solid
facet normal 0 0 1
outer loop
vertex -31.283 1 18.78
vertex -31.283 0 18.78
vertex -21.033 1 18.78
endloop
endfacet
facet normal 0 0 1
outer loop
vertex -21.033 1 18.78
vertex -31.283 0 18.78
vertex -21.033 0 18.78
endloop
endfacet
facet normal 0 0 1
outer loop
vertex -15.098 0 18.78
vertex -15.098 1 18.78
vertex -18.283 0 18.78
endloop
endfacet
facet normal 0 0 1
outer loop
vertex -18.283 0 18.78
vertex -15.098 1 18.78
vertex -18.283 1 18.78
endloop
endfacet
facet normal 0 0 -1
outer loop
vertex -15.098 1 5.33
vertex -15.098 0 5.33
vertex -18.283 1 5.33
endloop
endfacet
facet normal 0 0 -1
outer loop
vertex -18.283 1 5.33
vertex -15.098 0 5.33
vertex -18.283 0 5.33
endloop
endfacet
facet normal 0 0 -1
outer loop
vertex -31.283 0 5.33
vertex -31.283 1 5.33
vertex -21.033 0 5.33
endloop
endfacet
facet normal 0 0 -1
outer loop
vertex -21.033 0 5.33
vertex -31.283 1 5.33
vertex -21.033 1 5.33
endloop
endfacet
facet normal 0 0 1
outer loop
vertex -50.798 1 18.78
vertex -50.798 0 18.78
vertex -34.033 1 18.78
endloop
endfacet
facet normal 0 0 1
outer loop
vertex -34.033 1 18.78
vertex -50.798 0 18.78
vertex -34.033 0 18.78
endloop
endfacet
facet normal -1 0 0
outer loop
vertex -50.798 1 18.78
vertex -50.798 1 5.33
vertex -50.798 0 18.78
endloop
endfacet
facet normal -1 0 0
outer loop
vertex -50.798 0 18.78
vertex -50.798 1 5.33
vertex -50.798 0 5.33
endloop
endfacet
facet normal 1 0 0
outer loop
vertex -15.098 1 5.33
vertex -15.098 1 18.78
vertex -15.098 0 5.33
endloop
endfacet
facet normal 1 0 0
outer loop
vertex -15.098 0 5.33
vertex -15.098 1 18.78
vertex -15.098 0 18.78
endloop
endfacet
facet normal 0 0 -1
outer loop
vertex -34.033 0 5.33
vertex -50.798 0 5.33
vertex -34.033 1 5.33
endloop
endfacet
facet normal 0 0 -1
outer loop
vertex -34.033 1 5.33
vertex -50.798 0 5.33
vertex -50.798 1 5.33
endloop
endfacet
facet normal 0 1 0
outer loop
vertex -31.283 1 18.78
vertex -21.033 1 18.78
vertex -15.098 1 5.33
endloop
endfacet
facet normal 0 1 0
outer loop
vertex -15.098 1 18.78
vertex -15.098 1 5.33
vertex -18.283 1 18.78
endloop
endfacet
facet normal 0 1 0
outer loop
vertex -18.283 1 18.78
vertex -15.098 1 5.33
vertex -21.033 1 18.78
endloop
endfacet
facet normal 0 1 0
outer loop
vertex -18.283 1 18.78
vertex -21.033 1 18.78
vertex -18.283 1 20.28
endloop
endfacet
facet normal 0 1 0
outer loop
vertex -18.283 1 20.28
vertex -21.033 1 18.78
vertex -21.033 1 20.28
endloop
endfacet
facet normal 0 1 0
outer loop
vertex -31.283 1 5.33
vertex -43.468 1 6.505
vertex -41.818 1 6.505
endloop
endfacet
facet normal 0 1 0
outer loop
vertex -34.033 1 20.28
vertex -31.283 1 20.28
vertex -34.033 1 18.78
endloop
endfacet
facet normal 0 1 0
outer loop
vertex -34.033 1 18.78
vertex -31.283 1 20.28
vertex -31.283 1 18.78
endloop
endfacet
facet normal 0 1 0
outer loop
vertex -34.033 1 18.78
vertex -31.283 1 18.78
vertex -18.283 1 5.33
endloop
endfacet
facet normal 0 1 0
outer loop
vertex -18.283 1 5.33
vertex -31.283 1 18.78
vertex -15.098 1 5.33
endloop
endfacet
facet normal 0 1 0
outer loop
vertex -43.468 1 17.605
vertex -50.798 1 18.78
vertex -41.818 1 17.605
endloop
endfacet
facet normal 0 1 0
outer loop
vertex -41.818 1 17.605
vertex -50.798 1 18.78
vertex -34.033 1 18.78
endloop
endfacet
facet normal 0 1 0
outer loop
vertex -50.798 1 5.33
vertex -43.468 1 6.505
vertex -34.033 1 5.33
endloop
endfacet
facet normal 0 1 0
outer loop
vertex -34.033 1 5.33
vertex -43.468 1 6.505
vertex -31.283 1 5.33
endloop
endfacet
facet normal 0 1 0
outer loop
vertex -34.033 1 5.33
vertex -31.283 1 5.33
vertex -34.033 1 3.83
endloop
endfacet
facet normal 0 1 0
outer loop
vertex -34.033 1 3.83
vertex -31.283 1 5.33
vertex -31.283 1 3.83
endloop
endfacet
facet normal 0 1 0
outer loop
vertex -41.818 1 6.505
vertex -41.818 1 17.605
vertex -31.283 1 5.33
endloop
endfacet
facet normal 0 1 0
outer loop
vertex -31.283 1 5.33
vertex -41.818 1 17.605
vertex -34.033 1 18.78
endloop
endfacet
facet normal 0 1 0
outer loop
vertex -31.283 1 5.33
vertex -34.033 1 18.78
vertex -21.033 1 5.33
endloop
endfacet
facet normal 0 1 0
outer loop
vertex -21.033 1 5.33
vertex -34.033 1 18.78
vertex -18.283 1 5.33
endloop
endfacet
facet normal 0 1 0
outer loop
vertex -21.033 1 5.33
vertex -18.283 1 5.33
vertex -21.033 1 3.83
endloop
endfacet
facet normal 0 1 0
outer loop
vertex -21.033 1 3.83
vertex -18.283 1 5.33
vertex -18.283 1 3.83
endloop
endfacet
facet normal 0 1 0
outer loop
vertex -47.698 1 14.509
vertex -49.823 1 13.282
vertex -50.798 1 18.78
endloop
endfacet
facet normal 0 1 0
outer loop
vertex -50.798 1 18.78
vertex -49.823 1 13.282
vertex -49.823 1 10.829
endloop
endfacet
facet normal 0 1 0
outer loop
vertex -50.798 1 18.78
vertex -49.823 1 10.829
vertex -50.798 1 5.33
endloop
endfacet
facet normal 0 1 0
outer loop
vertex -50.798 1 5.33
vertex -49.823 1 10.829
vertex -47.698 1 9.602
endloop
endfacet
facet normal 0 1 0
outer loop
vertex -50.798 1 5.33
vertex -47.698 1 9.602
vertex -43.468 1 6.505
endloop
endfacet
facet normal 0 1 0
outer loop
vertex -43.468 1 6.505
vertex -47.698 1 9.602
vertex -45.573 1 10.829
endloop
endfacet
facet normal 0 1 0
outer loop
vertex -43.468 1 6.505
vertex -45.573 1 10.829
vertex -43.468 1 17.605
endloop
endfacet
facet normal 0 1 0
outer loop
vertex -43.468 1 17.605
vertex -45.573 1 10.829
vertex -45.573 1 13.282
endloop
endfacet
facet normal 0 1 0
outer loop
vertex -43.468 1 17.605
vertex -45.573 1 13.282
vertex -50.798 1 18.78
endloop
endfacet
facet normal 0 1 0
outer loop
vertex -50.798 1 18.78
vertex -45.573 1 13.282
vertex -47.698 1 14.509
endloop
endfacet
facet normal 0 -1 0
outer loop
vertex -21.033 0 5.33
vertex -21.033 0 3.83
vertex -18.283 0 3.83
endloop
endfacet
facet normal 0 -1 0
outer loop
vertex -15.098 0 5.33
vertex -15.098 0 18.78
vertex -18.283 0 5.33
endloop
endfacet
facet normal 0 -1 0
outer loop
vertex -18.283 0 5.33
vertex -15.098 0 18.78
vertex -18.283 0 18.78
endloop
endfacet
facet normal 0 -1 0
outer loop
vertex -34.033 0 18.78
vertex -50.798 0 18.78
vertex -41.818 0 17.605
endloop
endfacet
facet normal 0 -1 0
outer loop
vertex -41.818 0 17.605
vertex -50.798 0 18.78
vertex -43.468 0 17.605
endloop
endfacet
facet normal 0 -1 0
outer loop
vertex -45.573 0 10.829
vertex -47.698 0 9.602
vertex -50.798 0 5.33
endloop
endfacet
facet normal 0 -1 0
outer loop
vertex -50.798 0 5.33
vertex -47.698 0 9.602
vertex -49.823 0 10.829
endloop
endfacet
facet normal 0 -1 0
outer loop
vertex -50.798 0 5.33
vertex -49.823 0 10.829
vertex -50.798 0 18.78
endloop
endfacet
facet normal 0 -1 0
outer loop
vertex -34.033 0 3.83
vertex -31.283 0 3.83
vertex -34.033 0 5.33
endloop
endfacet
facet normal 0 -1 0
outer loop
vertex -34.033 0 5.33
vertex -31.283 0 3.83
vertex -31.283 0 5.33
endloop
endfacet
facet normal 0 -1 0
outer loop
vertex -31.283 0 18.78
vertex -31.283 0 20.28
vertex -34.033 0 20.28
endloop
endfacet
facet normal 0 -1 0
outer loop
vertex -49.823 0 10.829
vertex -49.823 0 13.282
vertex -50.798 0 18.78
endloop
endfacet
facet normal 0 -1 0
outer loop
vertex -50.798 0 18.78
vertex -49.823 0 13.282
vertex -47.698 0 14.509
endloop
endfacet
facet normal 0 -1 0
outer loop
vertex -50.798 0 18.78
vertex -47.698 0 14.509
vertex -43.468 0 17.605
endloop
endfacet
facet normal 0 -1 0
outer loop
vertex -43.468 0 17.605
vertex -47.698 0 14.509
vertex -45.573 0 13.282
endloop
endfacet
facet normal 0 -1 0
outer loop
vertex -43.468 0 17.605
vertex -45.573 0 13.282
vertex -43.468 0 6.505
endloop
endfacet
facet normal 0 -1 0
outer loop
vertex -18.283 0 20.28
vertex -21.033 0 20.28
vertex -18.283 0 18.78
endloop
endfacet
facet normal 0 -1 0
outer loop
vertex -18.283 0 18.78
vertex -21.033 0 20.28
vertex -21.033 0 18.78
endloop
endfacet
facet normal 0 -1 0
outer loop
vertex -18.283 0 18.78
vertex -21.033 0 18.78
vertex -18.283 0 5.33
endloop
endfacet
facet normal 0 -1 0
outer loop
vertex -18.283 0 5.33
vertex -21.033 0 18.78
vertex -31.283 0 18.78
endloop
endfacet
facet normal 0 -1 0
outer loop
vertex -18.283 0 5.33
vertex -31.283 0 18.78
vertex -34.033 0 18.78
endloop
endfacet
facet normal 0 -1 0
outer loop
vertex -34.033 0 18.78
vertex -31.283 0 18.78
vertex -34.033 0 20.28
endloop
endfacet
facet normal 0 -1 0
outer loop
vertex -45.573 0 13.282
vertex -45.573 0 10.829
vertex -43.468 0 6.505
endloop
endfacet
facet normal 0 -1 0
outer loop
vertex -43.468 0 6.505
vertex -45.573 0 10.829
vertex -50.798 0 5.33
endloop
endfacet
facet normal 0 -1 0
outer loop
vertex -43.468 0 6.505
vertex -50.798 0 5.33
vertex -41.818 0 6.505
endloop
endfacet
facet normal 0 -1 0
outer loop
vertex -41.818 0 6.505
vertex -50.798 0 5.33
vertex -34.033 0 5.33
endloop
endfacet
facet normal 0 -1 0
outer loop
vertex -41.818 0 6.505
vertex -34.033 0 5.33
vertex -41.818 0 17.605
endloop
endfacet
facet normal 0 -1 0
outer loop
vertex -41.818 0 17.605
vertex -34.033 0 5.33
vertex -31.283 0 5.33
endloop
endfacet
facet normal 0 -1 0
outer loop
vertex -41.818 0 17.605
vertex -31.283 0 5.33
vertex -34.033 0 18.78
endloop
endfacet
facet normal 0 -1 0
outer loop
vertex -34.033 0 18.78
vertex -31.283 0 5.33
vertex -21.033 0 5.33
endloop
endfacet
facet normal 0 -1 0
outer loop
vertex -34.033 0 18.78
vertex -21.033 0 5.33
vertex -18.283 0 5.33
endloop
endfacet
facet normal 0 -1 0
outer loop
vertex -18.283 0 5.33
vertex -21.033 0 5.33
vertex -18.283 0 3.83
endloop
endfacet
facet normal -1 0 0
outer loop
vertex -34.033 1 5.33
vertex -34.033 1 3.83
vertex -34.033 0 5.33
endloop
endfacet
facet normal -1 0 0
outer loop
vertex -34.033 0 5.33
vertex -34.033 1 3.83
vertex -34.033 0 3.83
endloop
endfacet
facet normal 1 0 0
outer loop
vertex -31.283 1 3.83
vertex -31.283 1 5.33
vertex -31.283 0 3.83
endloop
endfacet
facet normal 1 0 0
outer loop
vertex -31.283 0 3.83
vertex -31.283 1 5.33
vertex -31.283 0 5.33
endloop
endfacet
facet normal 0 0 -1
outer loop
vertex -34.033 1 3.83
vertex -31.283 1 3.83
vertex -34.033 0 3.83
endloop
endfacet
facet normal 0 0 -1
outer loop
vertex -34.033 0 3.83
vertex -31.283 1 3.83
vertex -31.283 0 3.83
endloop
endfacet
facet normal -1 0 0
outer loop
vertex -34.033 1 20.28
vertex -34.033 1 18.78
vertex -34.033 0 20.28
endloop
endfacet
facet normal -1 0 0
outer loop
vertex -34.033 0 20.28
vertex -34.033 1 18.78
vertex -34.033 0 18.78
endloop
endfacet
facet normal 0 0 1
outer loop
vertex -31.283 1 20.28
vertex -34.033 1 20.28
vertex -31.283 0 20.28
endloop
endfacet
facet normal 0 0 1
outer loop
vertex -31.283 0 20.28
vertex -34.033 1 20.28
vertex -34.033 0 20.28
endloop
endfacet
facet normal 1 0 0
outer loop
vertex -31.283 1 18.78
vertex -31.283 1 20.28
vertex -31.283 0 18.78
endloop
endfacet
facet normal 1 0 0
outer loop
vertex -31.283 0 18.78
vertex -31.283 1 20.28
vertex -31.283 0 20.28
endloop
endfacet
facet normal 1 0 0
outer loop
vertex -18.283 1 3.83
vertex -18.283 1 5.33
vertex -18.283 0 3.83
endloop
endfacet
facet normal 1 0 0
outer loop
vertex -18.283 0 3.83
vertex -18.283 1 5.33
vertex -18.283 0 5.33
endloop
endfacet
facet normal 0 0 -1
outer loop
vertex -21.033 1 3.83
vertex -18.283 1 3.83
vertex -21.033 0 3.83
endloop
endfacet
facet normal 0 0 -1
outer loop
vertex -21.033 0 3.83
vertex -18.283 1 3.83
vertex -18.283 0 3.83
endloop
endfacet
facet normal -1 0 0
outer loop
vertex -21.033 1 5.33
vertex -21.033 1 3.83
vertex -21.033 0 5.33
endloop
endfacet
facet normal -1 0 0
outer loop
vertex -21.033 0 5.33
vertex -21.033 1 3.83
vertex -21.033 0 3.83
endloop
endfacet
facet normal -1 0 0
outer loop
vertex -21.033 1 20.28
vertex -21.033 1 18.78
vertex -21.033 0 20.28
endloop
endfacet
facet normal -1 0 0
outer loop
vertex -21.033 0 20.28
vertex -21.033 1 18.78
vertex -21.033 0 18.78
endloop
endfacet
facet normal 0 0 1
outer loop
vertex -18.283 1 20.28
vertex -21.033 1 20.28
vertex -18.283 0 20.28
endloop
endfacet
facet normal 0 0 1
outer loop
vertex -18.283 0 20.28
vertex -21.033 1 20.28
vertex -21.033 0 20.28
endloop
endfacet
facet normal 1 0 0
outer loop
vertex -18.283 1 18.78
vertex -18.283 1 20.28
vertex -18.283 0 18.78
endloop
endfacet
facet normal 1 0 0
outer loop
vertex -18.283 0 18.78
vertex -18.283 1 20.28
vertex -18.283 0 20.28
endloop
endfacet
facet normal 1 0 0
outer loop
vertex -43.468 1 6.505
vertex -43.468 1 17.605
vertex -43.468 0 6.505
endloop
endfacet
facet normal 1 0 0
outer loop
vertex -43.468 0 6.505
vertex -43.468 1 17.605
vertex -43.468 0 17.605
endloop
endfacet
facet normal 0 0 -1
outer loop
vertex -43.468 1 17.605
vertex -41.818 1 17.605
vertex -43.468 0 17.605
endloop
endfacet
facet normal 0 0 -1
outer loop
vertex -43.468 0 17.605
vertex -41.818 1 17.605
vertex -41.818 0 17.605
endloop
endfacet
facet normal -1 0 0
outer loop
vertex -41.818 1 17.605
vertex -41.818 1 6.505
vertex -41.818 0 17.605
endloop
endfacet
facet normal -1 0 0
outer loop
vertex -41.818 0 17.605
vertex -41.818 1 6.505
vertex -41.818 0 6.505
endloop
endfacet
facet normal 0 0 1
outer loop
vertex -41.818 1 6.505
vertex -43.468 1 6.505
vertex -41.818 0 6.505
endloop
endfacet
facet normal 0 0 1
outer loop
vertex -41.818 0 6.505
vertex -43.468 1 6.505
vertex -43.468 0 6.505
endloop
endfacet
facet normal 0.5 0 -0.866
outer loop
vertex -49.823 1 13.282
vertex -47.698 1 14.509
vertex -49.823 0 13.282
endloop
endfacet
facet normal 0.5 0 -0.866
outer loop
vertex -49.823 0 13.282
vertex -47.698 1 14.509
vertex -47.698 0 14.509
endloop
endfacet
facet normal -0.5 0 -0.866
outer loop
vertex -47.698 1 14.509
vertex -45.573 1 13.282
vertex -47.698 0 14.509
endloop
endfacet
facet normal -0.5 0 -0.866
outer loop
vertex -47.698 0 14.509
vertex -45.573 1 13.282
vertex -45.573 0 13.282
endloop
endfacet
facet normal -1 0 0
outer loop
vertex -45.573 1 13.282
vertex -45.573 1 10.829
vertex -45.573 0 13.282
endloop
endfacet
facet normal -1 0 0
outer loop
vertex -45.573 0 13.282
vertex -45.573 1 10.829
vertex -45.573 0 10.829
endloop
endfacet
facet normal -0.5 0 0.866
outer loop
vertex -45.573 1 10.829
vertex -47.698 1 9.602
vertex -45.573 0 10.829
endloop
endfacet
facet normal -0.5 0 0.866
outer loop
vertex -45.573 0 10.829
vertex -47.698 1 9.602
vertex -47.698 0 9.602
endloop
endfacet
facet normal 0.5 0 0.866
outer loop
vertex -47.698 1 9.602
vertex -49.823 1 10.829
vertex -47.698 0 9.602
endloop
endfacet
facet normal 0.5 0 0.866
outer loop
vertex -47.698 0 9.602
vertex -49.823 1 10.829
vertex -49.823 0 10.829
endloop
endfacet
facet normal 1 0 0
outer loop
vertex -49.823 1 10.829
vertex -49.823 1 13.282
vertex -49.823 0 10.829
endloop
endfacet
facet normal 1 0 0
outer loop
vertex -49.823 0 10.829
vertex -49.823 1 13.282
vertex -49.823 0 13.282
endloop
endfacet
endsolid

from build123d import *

# Parameters (mm, degrees)
SKETCH1_W              = 35.7
SKETCH1_H              = 13.45
BOSS_EXTRUDE1_DEPTH    = 1
SKETCH2_W              = 2.75
SKETCH2_H              = 1.5
BOSS_EXTRUDE2_DEPTH    = 1
SKETCH3_W              = 1.65
SKETCH3_H              = 11.1
ADAPTER_PCB_HOLE_DEPTH = 1
CUT_EXTRUDE2_DEPTH     = 1


with BuildPart() as part:
    # Sketch1 → Boss-Extrude1 (new body)
    with BuildSketch(Plane(origin=(0, 0, 0), x_dir=(1, 0, 0), z_dir=(0, 1, 0))):
        with Locations((-32.948423651, -12.055454233)):
            Rectangle(SKETCH1_W, SKETCH1_H)
    extrude(amount=BOSS_EXTRUDE1_DEPTH)

    # Sketch2 → Boss-Extrude2 (add)
    with BuildSketch(Plane(origin=(0, 0, 0), x_dir=(1, 0, 0), z_dir=(0, 1, 0))):
        with Locations((-32.658423651, -4.580454233)):
            Rectangle(SKETCH2_W, SKETCH2_H)
        with Locations((-32.658423651, -19.530454233)):
            Rectangle(SKETCH2_W, SKETCH2_H)
        with Locations((-19.658423651, -4.580454233)):
            Rectangle(SKETCH2_W, SKETCH2_H)
        with Locations((-19.658423651, -19.530454233)):
            Rectangle(SKETCH2_W, SKETCH2_H)
    extrude(amount=BOSS_EXTRUDE2_DEPTH)

    # Sketch3 → adapter_PCB_hole (cut)
    with BuildSketch(Plane(origin=(0, 0, 0), x_dir=(-1, 0, 0), z_dir=(0, -1, 0))):
        with Locations((42.643423651, -12.055454233)):
            Rectangle(SKETCH3_W, SKETCH3_H)
    extrude(amount=-ADAPTER_PCB_HOLE_DEPTH, mode=Mode.SUBTRACT)

    # Sketch4 → Cut-Extrude2 (cut)
    with BuildSketch(Plane(origin=(0, 0, 0), x_dir=(-1, 0, 0), z_dir=(0, -1, 0))):
        Polygon((49.823423651, -13.282323555), (49.823423651, -10.828584911), (47.698423651, -9.601715589), (45.573423651, -10.828584911), (45.573423651, -13.282323555), (47.698423651, -14.509192877), align=None)
    extrude(amount=-CUT_EXTRUDE2_DEPTH, mode=Mode.SUBTRACT)


solid = part.part
